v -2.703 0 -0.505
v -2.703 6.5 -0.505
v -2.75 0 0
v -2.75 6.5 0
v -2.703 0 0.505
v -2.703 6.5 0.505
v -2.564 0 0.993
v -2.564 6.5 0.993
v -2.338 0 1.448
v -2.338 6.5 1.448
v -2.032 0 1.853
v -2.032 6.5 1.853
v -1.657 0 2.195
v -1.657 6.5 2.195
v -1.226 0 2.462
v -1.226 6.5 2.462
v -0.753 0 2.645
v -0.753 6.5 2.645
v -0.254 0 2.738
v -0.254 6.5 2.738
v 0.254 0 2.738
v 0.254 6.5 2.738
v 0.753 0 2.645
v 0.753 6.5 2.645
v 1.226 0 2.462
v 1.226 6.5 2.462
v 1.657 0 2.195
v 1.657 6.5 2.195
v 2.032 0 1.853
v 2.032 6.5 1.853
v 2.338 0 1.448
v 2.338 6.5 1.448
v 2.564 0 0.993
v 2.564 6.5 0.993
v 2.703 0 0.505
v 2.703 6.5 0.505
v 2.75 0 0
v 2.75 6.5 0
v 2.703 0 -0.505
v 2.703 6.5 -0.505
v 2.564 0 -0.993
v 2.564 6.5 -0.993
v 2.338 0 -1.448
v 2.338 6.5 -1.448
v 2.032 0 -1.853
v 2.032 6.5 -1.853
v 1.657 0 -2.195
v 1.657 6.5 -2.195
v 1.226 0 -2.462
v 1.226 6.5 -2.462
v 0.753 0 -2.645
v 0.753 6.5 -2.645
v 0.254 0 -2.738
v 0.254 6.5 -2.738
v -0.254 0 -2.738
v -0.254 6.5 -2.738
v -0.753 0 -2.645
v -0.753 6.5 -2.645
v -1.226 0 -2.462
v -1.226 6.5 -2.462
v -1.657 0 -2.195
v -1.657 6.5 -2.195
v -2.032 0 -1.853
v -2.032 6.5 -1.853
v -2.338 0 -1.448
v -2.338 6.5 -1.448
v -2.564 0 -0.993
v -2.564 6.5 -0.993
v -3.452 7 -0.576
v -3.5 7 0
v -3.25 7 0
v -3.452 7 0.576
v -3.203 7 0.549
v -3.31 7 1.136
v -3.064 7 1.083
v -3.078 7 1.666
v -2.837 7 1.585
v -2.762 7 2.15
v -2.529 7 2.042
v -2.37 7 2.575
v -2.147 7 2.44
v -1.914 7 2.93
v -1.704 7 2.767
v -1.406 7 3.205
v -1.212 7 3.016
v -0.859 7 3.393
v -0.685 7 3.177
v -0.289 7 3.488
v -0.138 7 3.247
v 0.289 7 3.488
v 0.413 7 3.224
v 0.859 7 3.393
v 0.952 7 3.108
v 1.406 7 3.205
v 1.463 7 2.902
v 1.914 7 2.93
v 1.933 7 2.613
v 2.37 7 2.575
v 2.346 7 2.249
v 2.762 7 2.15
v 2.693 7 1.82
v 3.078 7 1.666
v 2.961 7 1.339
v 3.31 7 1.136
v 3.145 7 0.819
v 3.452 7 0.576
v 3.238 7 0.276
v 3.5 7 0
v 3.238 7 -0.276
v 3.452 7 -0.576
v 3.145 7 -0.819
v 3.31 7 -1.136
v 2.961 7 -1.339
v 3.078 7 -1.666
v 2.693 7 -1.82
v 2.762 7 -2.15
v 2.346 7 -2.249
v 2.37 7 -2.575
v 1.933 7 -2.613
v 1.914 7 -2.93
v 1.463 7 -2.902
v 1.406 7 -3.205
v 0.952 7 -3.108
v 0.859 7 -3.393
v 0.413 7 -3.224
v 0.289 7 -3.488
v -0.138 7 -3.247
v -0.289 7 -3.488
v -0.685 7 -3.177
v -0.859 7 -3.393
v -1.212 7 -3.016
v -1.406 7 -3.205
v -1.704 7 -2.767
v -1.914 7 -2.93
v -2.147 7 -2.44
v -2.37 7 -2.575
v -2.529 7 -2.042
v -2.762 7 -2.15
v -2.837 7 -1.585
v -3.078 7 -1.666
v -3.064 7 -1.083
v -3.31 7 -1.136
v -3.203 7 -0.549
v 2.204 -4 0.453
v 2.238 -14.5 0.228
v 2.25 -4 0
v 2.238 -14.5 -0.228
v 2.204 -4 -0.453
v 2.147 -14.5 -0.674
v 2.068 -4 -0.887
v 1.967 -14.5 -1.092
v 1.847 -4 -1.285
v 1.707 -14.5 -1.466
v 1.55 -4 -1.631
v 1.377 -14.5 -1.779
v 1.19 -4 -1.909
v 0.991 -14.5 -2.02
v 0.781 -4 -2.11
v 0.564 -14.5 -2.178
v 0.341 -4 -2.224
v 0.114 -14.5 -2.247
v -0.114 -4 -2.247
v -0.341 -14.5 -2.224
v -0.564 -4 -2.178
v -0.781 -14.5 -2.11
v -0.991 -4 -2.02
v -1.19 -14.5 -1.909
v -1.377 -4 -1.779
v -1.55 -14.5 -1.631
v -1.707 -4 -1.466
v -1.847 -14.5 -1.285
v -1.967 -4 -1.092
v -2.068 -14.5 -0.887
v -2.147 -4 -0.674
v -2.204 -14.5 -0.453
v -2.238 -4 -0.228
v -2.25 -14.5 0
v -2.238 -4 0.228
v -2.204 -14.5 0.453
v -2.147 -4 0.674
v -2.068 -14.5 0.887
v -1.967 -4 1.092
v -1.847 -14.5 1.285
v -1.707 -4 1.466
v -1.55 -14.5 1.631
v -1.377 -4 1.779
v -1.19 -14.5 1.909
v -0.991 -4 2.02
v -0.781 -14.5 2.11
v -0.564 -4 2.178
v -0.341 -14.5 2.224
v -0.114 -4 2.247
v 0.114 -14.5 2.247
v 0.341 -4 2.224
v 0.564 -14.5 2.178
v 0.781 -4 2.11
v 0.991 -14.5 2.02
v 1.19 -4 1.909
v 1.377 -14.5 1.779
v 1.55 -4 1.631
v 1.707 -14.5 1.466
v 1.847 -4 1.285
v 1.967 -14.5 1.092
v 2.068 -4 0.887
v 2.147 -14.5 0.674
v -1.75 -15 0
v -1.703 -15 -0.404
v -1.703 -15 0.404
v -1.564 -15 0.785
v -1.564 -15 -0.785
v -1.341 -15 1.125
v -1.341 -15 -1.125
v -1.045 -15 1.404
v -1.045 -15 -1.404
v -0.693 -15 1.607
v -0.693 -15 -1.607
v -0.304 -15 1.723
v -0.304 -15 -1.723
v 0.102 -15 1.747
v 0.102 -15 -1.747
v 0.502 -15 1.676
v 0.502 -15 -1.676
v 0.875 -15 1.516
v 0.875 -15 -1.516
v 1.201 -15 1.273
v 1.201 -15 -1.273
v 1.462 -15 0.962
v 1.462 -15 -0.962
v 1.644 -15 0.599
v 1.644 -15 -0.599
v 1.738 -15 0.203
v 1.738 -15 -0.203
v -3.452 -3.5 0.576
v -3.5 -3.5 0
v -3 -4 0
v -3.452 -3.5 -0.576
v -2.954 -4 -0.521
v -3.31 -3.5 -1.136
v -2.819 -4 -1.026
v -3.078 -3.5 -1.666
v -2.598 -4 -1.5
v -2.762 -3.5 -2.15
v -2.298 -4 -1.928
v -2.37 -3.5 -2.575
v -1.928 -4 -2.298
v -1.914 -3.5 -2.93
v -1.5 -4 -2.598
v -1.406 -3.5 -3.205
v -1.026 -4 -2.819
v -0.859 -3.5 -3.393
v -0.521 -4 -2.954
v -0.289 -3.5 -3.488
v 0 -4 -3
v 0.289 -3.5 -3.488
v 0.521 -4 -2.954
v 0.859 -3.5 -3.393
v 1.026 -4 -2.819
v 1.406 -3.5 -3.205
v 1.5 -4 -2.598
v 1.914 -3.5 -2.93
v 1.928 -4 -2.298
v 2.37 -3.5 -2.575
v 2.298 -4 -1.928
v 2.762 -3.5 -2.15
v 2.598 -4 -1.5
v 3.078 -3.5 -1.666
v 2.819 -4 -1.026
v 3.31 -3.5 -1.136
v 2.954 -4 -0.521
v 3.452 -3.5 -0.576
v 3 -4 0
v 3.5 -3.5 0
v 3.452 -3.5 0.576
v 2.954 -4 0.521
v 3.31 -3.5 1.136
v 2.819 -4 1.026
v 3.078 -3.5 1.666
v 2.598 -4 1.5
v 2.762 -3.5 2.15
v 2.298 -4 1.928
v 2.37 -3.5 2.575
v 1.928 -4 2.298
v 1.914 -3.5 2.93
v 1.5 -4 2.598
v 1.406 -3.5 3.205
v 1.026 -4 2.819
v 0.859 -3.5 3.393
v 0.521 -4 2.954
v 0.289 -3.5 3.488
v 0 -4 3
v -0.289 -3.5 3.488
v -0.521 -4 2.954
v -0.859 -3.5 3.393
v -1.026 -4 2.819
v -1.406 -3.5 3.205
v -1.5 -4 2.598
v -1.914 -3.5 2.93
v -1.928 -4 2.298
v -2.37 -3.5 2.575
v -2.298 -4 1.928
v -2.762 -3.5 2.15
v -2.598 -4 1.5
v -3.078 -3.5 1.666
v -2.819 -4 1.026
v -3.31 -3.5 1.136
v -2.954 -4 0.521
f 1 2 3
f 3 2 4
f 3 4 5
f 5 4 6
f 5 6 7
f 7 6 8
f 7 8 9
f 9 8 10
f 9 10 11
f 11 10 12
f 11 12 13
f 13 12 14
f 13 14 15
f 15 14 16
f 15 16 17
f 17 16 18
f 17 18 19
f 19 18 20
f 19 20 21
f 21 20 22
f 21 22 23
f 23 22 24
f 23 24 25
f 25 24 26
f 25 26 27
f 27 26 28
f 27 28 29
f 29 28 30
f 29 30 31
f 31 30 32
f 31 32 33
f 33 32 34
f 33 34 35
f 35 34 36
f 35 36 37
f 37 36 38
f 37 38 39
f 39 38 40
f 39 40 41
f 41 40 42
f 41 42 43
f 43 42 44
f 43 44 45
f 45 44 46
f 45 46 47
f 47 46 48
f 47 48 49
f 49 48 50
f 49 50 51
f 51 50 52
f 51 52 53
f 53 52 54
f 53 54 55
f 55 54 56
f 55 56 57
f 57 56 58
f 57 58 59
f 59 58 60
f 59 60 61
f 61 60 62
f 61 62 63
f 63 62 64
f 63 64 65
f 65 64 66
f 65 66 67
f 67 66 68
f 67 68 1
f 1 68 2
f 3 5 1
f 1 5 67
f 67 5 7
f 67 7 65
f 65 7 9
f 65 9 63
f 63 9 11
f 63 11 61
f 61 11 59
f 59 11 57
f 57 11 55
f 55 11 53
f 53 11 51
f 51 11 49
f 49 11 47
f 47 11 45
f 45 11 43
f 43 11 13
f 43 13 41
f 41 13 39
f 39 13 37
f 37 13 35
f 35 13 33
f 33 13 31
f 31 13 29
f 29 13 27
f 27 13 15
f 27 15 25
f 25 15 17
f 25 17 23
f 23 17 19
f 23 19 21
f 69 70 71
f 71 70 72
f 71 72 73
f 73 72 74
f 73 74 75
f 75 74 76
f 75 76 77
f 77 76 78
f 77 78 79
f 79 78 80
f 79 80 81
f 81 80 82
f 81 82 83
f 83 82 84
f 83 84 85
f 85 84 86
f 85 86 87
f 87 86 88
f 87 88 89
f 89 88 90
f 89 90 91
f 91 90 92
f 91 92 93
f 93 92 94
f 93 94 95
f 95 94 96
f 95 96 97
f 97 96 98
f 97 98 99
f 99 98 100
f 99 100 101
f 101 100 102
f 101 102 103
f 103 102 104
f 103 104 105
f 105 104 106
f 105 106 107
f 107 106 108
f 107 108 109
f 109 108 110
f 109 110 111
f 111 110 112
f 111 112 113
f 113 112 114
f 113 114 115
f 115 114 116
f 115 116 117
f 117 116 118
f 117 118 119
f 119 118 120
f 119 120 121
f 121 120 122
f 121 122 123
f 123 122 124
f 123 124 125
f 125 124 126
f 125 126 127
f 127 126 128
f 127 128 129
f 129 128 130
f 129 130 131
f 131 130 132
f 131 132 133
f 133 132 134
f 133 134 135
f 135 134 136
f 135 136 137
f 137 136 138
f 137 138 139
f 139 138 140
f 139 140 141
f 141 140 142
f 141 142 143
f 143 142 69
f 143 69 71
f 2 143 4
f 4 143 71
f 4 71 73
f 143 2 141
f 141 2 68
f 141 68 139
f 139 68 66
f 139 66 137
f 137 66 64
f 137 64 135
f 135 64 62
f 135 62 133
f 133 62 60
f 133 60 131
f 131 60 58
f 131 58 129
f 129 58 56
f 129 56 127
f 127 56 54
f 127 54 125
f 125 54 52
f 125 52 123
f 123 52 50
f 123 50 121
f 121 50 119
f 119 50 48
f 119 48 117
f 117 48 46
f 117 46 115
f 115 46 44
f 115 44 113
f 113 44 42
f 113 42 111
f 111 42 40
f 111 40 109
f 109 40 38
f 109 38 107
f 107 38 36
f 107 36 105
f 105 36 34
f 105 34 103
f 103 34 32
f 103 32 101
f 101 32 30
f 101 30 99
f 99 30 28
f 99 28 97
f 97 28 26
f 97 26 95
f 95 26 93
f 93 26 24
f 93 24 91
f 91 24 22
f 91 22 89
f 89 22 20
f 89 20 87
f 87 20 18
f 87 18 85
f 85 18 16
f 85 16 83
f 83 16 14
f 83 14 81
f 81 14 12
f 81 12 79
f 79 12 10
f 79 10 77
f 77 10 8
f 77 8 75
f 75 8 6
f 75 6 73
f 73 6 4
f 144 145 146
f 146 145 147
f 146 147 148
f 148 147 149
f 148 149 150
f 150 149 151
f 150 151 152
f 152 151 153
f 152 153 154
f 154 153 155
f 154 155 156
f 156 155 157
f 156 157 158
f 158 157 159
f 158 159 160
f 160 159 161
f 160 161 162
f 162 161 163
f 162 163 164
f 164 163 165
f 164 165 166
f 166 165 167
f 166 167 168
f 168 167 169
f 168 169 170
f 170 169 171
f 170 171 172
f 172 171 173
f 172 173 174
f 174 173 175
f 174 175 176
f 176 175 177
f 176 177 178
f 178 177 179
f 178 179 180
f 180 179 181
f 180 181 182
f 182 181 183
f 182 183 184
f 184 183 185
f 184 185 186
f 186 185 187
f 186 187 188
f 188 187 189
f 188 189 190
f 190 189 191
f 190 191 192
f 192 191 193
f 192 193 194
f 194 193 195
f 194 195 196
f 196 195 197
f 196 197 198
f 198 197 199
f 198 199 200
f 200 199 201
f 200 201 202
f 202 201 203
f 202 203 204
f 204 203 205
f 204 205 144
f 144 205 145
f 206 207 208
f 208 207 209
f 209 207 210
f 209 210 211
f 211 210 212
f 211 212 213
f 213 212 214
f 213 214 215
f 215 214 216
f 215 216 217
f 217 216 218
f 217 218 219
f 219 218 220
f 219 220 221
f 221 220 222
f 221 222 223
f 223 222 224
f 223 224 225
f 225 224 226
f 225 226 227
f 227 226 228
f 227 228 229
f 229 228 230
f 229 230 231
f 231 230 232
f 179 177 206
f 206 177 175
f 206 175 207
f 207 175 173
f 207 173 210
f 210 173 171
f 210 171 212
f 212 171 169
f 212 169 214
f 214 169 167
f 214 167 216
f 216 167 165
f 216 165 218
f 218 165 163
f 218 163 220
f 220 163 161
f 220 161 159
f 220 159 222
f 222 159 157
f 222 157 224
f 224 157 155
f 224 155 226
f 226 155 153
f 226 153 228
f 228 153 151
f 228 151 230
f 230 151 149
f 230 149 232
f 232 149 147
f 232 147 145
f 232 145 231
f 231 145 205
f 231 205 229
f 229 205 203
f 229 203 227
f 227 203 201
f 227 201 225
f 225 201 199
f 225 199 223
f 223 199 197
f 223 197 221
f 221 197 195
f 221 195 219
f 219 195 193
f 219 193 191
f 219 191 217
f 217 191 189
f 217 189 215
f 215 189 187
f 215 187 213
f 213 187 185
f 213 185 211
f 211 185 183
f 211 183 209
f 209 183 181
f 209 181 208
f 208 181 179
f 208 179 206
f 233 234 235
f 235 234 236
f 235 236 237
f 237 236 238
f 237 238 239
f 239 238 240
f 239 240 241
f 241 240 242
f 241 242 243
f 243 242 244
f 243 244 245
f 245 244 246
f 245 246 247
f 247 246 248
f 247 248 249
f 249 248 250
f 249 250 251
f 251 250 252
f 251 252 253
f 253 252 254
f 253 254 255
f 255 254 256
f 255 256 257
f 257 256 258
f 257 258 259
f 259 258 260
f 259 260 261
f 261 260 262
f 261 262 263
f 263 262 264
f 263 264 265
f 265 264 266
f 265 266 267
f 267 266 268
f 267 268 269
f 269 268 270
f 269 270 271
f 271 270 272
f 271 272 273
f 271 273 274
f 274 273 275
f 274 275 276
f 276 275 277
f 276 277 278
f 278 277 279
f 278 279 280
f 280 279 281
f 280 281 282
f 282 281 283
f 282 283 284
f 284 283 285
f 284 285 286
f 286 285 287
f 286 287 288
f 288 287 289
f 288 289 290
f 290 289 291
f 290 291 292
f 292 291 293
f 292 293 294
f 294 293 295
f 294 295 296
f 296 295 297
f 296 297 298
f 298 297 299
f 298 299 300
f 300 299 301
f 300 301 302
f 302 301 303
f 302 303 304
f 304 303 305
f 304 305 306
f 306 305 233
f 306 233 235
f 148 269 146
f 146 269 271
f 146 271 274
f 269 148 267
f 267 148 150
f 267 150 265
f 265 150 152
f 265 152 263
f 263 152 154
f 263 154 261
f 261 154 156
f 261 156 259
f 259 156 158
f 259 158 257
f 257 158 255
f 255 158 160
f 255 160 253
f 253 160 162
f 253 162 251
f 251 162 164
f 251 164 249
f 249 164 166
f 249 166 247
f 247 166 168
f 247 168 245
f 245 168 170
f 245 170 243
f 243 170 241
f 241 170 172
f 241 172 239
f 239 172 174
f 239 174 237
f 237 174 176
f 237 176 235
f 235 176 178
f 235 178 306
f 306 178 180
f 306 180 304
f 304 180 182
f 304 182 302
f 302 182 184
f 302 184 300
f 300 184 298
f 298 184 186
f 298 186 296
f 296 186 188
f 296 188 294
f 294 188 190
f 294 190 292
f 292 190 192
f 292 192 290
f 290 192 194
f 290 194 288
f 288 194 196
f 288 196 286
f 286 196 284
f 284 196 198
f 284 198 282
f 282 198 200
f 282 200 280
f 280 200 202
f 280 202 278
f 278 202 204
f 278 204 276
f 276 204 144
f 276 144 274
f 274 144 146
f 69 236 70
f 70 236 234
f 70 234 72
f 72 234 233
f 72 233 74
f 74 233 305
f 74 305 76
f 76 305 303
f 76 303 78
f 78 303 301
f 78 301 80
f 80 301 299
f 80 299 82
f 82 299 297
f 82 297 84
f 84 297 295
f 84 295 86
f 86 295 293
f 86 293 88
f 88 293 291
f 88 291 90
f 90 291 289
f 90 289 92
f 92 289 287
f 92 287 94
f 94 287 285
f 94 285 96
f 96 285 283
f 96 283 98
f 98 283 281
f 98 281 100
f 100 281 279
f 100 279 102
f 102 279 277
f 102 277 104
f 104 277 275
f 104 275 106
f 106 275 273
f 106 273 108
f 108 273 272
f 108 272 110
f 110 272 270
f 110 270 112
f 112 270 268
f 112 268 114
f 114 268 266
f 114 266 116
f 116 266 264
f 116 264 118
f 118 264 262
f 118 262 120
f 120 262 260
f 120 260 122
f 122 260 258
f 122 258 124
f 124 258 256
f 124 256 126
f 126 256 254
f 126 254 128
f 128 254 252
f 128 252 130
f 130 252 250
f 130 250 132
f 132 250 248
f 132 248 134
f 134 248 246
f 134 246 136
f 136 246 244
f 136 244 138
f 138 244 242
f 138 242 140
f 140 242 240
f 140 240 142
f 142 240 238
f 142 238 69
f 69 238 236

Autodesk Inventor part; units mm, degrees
ref_plane "YZ Plane" through (0, 0, 0) normal (1, 0, 0) x (0, 1, 0)
ref_plane "XZ Plane" through (0, 0, 0) normal (0, 1, 0) x (-1, 0, 0)
ref_plane "XY Plane" through (0, 0, 0) normal (0, 0, 1) x (1, 0, 0)
sketch "Эскиз1" plane through (0, 0, 0) normal (0, 1, 0) x (-1, 0, 0)
  circle A0 centre (0, 0) radius 2.25
  circle A1 centre (0, 0) radius 2.75
  circle A2 centre (0, 0) radius 3.5
  dimension "d0" = 4.5
  dimension "d1" = 5.5
  dimension "d2" = 7
extrude "Выдавливание1" add sketch "Эскиз1" against normal blind 4 contours A0 | A1 | A2
extrude "Выдавливание2" add sketch "Эскиз1" against normal blind 15 contours A0
extrude "Выдавливание3" add sketch "Эскиз1" along normal blind 7 contours A2
chamfer "Фаска1" distance 0.5 angle 45 3 edges at (3.5, -4, 0) (2.25, -15, 0) (2.75, 7, 0)
properties part number "connector"
